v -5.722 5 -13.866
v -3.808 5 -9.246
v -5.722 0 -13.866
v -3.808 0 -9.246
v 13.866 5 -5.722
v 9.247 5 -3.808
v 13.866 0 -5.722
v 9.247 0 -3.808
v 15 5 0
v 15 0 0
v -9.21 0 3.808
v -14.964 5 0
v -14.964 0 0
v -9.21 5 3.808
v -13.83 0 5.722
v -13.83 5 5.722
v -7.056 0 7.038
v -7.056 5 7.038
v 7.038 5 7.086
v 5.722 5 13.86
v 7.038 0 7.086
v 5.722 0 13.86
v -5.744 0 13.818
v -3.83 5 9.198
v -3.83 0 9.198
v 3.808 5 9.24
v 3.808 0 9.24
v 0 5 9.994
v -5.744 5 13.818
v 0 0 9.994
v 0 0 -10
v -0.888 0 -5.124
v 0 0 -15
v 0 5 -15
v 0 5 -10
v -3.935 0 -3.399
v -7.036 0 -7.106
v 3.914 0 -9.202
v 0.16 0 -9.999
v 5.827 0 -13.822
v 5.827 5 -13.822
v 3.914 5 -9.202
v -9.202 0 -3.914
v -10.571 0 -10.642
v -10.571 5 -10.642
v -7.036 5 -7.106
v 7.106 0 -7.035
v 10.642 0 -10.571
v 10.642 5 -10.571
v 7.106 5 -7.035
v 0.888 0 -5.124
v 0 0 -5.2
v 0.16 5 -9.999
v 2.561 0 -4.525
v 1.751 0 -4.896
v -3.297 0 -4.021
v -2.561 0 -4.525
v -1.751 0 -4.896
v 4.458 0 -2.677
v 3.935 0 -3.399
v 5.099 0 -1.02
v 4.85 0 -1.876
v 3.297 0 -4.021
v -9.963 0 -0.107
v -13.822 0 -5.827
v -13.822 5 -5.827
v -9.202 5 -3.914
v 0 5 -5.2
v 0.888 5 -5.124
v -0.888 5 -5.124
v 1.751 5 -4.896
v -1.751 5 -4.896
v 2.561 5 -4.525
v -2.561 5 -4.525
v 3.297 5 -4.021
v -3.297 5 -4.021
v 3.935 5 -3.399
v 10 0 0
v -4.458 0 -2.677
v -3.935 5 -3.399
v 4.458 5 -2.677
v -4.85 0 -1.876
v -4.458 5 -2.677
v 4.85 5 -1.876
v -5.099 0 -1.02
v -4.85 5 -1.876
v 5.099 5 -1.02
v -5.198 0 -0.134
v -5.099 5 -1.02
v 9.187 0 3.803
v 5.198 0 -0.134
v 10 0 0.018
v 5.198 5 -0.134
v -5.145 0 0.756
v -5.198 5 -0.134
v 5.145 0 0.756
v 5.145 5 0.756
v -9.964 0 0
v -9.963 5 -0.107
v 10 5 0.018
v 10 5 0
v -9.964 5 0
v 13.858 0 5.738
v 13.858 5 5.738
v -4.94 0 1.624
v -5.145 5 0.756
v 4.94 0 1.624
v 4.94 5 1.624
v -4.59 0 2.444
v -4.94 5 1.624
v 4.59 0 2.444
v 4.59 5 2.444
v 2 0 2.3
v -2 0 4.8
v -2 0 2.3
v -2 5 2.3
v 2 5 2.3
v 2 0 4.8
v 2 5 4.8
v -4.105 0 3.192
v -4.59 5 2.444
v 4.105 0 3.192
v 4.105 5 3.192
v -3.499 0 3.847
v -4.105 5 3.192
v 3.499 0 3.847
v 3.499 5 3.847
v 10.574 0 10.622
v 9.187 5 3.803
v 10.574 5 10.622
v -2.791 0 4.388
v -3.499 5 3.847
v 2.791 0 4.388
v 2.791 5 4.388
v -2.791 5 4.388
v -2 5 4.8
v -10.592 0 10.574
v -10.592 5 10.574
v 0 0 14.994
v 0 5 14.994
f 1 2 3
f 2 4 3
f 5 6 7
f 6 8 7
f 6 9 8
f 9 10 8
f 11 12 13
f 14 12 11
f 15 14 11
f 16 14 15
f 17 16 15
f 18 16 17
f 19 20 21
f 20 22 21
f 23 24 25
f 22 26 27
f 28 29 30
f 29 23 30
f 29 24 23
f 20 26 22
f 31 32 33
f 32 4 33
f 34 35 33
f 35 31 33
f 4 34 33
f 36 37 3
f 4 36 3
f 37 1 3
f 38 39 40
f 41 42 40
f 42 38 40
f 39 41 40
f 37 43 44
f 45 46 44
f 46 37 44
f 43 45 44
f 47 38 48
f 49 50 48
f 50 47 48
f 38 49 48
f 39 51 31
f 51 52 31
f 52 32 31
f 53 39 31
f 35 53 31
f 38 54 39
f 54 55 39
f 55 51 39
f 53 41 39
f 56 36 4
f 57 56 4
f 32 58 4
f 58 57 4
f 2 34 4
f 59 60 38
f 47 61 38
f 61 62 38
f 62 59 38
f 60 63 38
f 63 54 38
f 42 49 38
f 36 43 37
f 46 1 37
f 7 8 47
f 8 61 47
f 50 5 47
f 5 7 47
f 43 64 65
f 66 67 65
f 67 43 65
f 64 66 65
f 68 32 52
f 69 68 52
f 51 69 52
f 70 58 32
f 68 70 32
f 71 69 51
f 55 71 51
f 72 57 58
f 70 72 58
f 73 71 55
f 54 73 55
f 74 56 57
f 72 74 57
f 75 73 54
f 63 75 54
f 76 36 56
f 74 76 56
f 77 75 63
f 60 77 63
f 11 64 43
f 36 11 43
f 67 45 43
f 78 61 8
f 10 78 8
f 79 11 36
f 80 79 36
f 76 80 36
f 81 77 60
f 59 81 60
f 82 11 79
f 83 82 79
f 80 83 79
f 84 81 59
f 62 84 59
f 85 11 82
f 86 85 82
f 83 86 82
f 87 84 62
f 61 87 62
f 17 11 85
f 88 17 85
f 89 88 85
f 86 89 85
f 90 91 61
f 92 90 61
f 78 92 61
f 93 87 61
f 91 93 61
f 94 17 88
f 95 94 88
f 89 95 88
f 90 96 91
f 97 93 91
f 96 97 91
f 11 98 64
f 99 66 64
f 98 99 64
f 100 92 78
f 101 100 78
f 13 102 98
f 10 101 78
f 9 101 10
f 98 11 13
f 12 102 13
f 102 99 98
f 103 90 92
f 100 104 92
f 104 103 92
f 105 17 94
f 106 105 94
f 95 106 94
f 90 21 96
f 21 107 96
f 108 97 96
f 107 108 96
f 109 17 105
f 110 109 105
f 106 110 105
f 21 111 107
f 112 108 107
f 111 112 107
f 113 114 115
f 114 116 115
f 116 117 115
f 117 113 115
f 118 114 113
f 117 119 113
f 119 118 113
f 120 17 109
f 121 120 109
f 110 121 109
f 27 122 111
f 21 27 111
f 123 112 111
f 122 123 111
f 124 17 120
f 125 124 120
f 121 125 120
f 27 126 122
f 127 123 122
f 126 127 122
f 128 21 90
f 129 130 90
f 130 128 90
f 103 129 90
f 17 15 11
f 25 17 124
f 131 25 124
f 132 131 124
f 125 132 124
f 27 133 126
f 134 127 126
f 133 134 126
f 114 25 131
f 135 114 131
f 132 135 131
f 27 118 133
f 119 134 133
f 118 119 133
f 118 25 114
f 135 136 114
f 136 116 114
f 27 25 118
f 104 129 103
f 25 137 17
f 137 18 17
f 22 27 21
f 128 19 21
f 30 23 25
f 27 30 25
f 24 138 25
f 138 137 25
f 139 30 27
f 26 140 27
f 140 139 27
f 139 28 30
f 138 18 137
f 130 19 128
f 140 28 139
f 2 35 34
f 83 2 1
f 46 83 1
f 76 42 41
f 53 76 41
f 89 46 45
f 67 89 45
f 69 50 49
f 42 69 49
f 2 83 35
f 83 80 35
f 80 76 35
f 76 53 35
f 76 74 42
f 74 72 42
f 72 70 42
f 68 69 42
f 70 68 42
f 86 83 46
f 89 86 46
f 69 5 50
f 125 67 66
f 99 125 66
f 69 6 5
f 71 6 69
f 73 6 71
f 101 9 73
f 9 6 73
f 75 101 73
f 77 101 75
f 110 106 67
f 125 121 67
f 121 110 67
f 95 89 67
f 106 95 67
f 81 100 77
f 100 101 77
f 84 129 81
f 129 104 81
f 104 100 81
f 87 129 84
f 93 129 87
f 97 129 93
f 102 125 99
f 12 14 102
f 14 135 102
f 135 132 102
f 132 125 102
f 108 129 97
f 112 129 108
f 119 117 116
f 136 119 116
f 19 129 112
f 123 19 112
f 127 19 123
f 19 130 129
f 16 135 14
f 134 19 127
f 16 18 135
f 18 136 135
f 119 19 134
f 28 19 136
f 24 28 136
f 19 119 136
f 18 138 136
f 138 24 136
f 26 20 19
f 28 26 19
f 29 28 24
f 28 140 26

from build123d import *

# Parameters (mm, degrees)
BOSS_EXTRUDE1_DEPTH = 5


with BuildPart() as part:
    # Sketch1 → Boss-Extrude1 (new body)
    with BuildSketch(Plane(origin=(0, 0, 0), x_dir=(1, 0, 0), z_dir=(0, 1, 0))):
        with BuildLine():
            Line((0, -9.994125046), (0, -14.994125046))
            Line((0, -14.994125046), (3.808365199, -9.240312874))
            Line((3.808365199, -9.240312874), (5.72178236, -13.859710537))
            Line((5.72178236, -13.859710537), (7.038364429, -7.086482971))
            Line((7.038364429, -7.086482971), (10.573898335, -10.622016877))
            Line((10.573898335, -10.622016877), (9.186628177, -3.803366209))
            Line((9.186628177, -3.803366209), (13.858414609, -5.73848351))
            Line((13.858414609, -5.73848351), (9.999983576, -0.018124259))
            ThreePointArc((9.999983576, -0.018124259), (9.999995894, -0.009062133), (10, 0))
            Line((10, 0), (15, 0))
            Line((15, 0), (9.246512341, 3.808150408))
            Line((9.246512341, 3.808150408), (13.865910003, 5.72156757))
            Line((13.865910003, 5.72156757), (7.106491915, 7.035465347))
            Line((7.106491915, 7.035465347), (10.642025821, 10.570999253))
            Line((10.642025821, 10.570999253), (3.914062891, 9.202179725))
            Line((3.914062891, 9.202179725), (5.827480053, 13.821577387))
            Line((5.827480053, 13.821577387), (0.160205895, 9.998952701))
            ThreePointArc((0.160205895, 9.998952701), (0.080105518, 9.999915207), (0, 10.000236049))
            Line((0, 10.000236049), (0, 15.000236049))
            Line((0, 15.000236049), (-3.808365199, 9.246423877))
            Line((-3.808365199, 9.246423877), (-5.72178236, 13.86582154))
            Line((-5.72178236, 13.86582154), (-7.03571003, 7.10624967))
            Line((-7.03571003, 7.10624967), (-10.571243936, 10.641783576))
            Line((-10.571243936, 10.641783576), (-9.202378572, 3.913595357))
            Line((-9.202378572, 3.913595357), (-13.821776235, 5.827012519))
            Line((-13.821776235, 5.827012519), (-9.963345201, 0.106653268))
            ThreePointArc((-9.963345201, 0.106653268), (-9.963773316, 0.053327398), (-9.963916023, 0))
            Line((-9.963916023, 0), (-14.963916023, 0))
            Line((-14.963916023, 0), (-9.21010385, -3.808365199))
            Line((-9.21010385, -3.808365199), (-13.829501513, -5.72178236))
            Line((-13.829501513, -5.72178236), (-7.056273947, -7.038364429))
            Line((-7.056273947, -7.038364429), (-10.591807853, -10.573898335))
            Line((-10.591807853, -10.573898335), (-3.830327391, -9.198259587))
            Line((-3.830327391, -9.198259587), (-5.743744553, -13.81765725))
            Line((-5.743744553, -13.81765725), (0, -9.994125046))
        make_face()
        with BuildLine():
            Line((-2, -4.8), (-2, -2.3))
            Line((-2, -2.3), (2, -2.3))
            Line((2, -2.3), (2, -4.8))
            ThreePointArc((2, -4.8), (0, 5.2), (-2, -4.8))
        make_face(mode=Mode.SUBTRACT)
    extrude(amount=BOSS_EXTRUDE1_DEPTH)


solid = part.part
